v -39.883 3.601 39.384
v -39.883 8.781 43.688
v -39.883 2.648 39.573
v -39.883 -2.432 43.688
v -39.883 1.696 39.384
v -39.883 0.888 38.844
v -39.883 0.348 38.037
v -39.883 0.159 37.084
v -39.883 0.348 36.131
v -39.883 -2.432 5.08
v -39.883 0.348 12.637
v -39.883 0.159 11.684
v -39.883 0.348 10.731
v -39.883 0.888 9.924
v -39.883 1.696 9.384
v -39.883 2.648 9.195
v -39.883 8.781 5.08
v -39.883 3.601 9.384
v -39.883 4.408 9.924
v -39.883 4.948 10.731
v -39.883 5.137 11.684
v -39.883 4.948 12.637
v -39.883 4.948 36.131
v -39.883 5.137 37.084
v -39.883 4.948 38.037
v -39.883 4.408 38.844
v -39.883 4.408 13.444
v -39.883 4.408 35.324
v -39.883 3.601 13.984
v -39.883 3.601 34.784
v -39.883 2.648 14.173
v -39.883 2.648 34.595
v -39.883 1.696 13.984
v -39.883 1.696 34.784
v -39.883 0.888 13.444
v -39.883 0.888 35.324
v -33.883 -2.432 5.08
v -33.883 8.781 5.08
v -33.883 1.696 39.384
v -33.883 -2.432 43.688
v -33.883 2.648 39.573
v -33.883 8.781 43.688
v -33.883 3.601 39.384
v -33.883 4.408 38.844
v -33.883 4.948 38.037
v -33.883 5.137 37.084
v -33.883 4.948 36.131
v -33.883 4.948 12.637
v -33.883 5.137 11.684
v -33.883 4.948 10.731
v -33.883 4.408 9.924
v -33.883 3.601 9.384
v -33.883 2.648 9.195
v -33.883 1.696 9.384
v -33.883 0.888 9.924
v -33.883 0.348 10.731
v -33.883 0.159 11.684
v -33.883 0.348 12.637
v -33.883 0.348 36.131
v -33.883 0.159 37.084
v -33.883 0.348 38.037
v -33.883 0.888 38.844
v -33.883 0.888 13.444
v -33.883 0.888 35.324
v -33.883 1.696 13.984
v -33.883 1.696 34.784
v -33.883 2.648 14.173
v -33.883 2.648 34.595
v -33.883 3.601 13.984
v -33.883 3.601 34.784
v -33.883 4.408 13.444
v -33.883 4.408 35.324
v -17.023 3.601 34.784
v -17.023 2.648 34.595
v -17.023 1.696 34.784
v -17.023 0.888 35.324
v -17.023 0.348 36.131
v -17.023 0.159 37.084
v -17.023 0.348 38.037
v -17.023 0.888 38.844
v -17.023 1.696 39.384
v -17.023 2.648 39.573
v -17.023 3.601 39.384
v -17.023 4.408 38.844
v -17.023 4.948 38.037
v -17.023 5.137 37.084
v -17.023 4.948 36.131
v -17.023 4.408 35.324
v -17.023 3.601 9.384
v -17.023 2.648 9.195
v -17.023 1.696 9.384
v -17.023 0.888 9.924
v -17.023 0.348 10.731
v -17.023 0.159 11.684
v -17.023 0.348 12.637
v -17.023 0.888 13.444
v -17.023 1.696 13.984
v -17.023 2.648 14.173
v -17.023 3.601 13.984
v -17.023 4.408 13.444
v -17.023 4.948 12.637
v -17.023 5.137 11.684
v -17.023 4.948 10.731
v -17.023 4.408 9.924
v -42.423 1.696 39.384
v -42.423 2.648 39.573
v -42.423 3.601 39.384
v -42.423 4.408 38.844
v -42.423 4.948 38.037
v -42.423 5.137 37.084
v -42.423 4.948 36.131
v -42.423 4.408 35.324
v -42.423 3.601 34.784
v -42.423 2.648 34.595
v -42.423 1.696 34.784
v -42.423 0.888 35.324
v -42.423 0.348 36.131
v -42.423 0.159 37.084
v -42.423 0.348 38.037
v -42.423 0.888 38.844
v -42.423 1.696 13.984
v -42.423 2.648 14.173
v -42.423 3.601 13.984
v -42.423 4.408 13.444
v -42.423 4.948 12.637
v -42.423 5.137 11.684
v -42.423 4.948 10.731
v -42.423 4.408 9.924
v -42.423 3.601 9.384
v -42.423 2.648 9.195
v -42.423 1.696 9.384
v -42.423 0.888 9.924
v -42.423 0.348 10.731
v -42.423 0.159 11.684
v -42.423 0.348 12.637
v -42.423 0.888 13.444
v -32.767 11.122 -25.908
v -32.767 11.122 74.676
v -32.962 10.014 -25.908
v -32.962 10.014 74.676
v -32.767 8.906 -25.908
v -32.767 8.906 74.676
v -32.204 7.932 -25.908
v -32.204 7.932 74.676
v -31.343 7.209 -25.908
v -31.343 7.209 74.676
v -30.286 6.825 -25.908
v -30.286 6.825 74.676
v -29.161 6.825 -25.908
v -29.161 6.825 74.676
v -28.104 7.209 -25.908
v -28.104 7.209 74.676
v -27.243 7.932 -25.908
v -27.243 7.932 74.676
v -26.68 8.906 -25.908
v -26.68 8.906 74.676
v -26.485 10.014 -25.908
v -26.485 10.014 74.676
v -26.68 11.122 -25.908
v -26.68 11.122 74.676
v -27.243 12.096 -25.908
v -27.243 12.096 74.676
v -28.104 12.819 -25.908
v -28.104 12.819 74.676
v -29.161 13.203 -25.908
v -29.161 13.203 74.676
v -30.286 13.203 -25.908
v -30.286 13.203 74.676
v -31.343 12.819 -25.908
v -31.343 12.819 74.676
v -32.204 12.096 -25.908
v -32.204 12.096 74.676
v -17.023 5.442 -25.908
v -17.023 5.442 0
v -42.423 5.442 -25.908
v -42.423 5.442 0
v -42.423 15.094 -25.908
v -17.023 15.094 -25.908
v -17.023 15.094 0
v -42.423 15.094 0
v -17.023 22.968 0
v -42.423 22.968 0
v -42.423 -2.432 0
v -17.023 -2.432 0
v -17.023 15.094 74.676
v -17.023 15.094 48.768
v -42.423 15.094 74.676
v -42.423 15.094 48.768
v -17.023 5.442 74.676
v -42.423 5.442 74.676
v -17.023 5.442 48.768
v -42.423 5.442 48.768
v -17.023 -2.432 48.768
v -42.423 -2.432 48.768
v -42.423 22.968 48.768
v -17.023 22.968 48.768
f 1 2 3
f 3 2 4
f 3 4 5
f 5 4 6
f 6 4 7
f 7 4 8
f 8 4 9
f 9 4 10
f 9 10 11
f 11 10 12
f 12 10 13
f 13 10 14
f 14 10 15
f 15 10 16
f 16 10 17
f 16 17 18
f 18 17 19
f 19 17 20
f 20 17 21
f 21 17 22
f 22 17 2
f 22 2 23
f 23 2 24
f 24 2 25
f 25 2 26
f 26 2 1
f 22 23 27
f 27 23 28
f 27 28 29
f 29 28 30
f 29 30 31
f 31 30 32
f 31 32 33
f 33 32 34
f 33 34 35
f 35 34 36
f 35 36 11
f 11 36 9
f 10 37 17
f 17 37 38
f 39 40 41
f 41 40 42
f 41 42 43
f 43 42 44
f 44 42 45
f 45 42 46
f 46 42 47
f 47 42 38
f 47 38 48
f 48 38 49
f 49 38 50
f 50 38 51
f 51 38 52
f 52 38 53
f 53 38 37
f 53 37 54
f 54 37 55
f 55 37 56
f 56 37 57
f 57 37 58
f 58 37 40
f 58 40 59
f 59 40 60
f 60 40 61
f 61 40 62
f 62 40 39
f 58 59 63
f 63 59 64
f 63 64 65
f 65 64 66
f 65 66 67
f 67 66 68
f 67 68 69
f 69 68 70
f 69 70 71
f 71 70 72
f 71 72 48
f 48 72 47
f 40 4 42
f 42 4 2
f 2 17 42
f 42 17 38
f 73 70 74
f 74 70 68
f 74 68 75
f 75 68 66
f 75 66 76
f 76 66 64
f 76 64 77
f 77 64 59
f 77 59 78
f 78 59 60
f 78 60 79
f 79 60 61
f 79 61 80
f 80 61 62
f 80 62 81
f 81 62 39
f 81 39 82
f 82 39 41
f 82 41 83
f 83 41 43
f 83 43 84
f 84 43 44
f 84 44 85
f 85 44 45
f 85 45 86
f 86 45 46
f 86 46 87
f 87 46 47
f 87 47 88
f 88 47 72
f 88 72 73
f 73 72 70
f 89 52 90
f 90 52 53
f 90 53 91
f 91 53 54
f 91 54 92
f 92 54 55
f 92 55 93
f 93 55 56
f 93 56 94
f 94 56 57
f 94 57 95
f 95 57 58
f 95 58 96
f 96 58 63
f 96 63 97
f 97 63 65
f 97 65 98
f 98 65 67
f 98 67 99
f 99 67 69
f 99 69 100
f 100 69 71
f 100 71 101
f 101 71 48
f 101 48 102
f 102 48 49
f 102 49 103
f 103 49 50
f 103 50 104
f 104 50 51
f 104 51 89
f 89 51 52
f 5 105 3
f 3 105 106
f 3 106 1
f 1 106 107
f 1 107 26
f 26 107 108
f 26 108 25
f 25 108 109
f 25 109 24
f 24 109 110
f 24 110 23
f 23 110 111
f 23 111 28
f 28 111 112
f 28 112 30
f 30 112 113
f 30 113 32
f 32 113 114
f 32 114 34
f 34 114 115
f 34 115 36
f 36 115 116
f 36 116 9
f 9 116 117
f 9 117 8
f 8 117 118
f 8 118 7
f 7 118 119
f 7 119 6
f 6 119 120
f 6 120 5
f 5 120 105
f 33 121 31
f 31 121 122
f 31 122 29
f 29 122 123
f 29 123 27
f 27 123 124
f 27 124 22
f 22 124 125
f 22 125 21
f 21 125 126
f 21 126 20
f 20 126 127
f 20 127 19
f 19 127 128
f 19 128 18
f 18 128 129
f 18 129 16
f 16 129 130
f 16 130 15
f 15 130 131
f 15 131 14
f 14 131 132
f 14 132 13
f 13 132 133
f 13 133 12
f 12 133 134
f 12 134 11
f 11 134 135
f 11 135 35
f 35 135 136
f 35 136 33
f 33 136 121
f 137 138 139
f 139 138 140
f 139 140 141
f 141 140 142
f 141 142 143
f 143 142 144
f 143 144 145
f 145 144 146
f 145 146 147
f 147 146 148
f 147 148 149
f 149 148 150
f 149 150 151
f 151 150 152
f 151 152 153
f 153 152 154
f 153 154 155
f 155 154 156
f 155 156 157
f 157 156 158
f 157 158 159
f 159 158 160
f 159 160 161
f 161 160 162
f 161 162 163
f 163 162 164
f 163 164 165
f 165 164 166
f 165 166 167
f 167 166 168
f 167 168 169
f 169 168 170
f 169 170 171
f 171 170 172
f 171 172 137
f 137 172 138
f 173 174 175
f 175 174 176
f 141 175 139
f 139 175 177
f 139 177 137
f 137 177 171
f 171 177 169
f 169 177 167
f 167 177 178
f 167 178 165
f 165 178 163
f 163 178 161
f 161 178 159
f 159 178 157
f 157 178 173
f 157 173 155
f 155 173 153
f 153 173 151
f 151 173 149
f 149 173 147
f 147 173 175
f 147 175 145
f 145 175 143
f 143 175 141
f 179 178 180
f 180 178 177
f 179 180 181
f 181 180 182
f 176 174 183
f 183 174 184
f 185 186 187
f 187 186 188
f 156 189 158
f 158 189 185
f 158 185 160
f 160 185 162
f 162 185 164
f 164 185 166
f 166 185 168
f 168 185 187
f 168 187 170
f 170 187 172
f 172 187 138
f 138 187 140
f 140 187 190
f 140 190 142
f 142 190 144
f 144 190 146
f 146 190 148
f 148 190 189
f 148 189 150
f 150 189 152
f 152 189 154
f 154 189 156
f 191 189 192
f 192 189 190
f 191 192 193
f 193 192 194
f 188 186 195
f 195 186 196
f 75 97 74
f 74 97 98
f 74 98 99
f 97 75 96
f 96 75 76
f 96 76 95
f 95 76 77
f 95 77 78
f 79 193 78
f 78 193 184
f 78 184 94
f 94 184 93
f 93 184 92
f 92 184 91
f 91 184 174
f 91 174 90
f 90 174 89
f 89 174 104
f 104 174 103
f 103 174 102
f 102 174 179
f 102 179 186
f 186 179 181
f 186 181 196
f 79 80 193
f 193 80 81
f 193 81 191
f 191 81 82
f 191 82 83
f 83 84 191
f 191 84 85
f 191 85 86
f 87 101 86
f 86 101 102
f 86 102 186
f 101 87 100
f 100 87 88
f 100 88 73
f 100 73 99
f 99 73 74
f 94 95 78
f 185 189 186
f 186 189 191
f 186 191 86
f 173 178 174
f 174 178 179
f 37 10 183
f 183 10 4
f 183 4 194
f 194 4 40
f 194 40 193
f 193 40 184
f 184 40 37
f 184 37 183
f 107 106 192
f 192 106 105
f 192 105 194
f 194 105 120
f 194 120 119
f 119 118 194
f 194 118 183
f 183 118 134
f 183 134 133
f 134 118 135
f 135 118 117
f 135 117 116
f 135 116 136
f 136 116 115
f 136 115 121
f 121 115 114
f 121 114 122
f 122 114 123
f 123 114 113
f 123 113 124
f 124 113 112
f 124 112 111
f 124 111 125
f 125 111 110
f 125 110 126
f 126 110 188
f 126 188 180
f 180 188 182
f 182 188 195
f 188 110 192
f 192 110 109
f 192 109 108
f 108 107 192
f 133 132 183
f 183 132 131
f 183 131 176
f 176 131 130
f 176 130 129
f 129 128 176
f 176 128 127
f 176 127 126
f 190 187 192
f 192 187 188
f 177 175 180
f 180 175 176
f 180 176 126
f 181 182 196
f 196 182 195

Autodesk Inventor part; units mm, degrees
ref_plane "YZ Plane" through (0, 0, 0) normal (1, 0, 0) x (0, 1, 0)
ref_plane "XZ Plane" through (0, 0, 0) normal (0, 1, 0) x (-1, 0, 0)
ref_plane "XY Plane" through (0, 0, 0) normal (0, 0, 1) x (1, 0, 0)
sketch "Sketch1" plane through (0, 0, 0) normal (0, 0, 1) x (1, 0, 0)
  line L0 (-42.4234, 22.9681) -> (-17.0234, 22.9681)
  line L1 (-17.0234, 22.9681) -> (-17.0234, -2.4319)
  line L2 (-17.0234, -2.4319) -> (-42.4234, -2.4319)
  line L3 (-42.4234, -2.4319) -> (-42.4234, 22.9681)
  point P0 (0, 0)
  dimension "d0" = 25.4
  dimension "d1" = 25.4
extrude "Extrusion1" add sketch "Sketch1" along normal blind 48.768
sketch "Sketch2" plane through (-17.0234, -2.4319, 0) normal (1, 0, 0) x (0, 0, -1)
  line L0 (-48.768, 17.526) -> (-48.768, 7.874)
  line L1 (-48.768, 7.874) -> (-74.676, 7.874)
  line L2 (-74.676, 7.874) -> (-74.676, 17.526)
  line L3 (-74.676, 17.526) -> (-48.768, 17.526)
  line L4 (-48.768, 0) -> (-48.768, 25.4) projected
  line L5 (0, 0) -> (-48.768, 0) projected
  line L6 (0, 25.4) -> (-48.768, 25.4) projected
  point P0 (0, 2.4319)
  dimension "d4" = 25.908
  dimension "d94" = 7.874
  dimension "d95" = 7.874
extrude "Extrusion2" add sketch "Sketch2" against normal blind 25.4
sketch "Sketch3" plane through (-17.0234, -2.4319, 0) normal (1, 0, 0) x (0, 0, -1)
  line L0 (0, 17.526) -> (0, 7.874)
  line L1 (0, 7.874) -> (25.908, 7.874)
  line L2 (25.908, 7.874) -> (25.908, 17.526)
  line L3 (25.908, 17.526) -> (0, 17.526)
  line L4 (-74.676, 7.874) -> (-48.768, 7.874) projected
  line L5 (-48.768, 17.526) -> (-74.676, 17.526) projected
  line L6 (0, 25.4) -> (0, 0) projected
  line L7 (0, 0) -> (-48.768, 0) projected
  line L8 (0, 25.4) -> (-48.768, 25.4) projected
  point P0 (0, 2.4319)
  point P1 (0, 22.86)
  point P2 (-55.88, 7.62)
  point P3 (-55.88, 17.78)
  point P4 (-48.768, 7.874)
  dimension "d20" = 9.652
  dimension "d23" = 9.652
  dimension "d92" = 7.874
  dimension "d96" = 25.908
  dimension "d97" = 7.874
extrude "Extrusion3" add sketch "Sketch3" against normal blind 25.4
sketch "Sketch4" plane through (-17.0234, 5.4421, 74.676) normal (0, 0, 1) x (1, 0, 0)
  line L0 (0, 9.652) -> (-25.4, 9.652) projected
  line L1 (-25.4, 0) -> (-25.4, 9.652) projected
  point P0 (17.0234, -5.4421)
  point P1 (-12.7, 4.572)
  dimension "d26" = 5.08
  dimension "d27" = 12.7
hole "Hole1" at (-29.7234, 10.0141, 74.676) direction (0, 0, -1) diameter 6.477 end through all
sketch "Sketch5" plane through (-17.0234, 22.9681, 48.768) normal (1, 0, 0) x (0, 0, -1)
  line L0 (48.768, -25.4) -> (0, -25.4) projected
  point P0 (48.768, -22.9681)
  point P1 (11.684, -20.32)
  point P2 (37.084, -20.32)
  dimension "d35" = 5.08
  dimension "d36" = 5.08
  dimension "d37" = 11.684
  dimension "d38" = 11.684
  dimension "d93" = 25.4
hole "Hole2" at (-17.0234, 2.6481, 37.084) at (-17.0234, 2.6481, 11.684) direction (-1, 0, 0) diameter 4.9784 end through all thread size "1/4-20 UNC" class "2B" standard "ANSI Unified Screw Threads"
sketch "Sketch19" plane through (-42.4234, -2.4319, 0) normal (0, -1, 0) x (1, 0, 0)
  line L0 (8.54, 43.688) -> (2.54, 43.688)
  line L1 (2.54, 43.688) -> (2.54, 5.08)
  line L2 (2.54, 5.08) -> (8.54, 5.08)
  line L3 (8.54, 5.08) -> (8.54, 43.688)
  line L4 (25.4, 0) -> (0, 0) projected
  line L5 (0, 48.768) -> (25.4, 48.768) projected
  line L6 (0, 0) -> (0, 48.768) projected
  point P0 (42.4234, 0)
  dimension "d98" = 6
  dimension "d99" = 5.08
  dimension "d100" = 5.08
  dimension "d101" = 2.54
extrude "Extrusion13" cut sketch "Sketch19" against normal blind 11.213
properties part number "SliderSlide2r"
